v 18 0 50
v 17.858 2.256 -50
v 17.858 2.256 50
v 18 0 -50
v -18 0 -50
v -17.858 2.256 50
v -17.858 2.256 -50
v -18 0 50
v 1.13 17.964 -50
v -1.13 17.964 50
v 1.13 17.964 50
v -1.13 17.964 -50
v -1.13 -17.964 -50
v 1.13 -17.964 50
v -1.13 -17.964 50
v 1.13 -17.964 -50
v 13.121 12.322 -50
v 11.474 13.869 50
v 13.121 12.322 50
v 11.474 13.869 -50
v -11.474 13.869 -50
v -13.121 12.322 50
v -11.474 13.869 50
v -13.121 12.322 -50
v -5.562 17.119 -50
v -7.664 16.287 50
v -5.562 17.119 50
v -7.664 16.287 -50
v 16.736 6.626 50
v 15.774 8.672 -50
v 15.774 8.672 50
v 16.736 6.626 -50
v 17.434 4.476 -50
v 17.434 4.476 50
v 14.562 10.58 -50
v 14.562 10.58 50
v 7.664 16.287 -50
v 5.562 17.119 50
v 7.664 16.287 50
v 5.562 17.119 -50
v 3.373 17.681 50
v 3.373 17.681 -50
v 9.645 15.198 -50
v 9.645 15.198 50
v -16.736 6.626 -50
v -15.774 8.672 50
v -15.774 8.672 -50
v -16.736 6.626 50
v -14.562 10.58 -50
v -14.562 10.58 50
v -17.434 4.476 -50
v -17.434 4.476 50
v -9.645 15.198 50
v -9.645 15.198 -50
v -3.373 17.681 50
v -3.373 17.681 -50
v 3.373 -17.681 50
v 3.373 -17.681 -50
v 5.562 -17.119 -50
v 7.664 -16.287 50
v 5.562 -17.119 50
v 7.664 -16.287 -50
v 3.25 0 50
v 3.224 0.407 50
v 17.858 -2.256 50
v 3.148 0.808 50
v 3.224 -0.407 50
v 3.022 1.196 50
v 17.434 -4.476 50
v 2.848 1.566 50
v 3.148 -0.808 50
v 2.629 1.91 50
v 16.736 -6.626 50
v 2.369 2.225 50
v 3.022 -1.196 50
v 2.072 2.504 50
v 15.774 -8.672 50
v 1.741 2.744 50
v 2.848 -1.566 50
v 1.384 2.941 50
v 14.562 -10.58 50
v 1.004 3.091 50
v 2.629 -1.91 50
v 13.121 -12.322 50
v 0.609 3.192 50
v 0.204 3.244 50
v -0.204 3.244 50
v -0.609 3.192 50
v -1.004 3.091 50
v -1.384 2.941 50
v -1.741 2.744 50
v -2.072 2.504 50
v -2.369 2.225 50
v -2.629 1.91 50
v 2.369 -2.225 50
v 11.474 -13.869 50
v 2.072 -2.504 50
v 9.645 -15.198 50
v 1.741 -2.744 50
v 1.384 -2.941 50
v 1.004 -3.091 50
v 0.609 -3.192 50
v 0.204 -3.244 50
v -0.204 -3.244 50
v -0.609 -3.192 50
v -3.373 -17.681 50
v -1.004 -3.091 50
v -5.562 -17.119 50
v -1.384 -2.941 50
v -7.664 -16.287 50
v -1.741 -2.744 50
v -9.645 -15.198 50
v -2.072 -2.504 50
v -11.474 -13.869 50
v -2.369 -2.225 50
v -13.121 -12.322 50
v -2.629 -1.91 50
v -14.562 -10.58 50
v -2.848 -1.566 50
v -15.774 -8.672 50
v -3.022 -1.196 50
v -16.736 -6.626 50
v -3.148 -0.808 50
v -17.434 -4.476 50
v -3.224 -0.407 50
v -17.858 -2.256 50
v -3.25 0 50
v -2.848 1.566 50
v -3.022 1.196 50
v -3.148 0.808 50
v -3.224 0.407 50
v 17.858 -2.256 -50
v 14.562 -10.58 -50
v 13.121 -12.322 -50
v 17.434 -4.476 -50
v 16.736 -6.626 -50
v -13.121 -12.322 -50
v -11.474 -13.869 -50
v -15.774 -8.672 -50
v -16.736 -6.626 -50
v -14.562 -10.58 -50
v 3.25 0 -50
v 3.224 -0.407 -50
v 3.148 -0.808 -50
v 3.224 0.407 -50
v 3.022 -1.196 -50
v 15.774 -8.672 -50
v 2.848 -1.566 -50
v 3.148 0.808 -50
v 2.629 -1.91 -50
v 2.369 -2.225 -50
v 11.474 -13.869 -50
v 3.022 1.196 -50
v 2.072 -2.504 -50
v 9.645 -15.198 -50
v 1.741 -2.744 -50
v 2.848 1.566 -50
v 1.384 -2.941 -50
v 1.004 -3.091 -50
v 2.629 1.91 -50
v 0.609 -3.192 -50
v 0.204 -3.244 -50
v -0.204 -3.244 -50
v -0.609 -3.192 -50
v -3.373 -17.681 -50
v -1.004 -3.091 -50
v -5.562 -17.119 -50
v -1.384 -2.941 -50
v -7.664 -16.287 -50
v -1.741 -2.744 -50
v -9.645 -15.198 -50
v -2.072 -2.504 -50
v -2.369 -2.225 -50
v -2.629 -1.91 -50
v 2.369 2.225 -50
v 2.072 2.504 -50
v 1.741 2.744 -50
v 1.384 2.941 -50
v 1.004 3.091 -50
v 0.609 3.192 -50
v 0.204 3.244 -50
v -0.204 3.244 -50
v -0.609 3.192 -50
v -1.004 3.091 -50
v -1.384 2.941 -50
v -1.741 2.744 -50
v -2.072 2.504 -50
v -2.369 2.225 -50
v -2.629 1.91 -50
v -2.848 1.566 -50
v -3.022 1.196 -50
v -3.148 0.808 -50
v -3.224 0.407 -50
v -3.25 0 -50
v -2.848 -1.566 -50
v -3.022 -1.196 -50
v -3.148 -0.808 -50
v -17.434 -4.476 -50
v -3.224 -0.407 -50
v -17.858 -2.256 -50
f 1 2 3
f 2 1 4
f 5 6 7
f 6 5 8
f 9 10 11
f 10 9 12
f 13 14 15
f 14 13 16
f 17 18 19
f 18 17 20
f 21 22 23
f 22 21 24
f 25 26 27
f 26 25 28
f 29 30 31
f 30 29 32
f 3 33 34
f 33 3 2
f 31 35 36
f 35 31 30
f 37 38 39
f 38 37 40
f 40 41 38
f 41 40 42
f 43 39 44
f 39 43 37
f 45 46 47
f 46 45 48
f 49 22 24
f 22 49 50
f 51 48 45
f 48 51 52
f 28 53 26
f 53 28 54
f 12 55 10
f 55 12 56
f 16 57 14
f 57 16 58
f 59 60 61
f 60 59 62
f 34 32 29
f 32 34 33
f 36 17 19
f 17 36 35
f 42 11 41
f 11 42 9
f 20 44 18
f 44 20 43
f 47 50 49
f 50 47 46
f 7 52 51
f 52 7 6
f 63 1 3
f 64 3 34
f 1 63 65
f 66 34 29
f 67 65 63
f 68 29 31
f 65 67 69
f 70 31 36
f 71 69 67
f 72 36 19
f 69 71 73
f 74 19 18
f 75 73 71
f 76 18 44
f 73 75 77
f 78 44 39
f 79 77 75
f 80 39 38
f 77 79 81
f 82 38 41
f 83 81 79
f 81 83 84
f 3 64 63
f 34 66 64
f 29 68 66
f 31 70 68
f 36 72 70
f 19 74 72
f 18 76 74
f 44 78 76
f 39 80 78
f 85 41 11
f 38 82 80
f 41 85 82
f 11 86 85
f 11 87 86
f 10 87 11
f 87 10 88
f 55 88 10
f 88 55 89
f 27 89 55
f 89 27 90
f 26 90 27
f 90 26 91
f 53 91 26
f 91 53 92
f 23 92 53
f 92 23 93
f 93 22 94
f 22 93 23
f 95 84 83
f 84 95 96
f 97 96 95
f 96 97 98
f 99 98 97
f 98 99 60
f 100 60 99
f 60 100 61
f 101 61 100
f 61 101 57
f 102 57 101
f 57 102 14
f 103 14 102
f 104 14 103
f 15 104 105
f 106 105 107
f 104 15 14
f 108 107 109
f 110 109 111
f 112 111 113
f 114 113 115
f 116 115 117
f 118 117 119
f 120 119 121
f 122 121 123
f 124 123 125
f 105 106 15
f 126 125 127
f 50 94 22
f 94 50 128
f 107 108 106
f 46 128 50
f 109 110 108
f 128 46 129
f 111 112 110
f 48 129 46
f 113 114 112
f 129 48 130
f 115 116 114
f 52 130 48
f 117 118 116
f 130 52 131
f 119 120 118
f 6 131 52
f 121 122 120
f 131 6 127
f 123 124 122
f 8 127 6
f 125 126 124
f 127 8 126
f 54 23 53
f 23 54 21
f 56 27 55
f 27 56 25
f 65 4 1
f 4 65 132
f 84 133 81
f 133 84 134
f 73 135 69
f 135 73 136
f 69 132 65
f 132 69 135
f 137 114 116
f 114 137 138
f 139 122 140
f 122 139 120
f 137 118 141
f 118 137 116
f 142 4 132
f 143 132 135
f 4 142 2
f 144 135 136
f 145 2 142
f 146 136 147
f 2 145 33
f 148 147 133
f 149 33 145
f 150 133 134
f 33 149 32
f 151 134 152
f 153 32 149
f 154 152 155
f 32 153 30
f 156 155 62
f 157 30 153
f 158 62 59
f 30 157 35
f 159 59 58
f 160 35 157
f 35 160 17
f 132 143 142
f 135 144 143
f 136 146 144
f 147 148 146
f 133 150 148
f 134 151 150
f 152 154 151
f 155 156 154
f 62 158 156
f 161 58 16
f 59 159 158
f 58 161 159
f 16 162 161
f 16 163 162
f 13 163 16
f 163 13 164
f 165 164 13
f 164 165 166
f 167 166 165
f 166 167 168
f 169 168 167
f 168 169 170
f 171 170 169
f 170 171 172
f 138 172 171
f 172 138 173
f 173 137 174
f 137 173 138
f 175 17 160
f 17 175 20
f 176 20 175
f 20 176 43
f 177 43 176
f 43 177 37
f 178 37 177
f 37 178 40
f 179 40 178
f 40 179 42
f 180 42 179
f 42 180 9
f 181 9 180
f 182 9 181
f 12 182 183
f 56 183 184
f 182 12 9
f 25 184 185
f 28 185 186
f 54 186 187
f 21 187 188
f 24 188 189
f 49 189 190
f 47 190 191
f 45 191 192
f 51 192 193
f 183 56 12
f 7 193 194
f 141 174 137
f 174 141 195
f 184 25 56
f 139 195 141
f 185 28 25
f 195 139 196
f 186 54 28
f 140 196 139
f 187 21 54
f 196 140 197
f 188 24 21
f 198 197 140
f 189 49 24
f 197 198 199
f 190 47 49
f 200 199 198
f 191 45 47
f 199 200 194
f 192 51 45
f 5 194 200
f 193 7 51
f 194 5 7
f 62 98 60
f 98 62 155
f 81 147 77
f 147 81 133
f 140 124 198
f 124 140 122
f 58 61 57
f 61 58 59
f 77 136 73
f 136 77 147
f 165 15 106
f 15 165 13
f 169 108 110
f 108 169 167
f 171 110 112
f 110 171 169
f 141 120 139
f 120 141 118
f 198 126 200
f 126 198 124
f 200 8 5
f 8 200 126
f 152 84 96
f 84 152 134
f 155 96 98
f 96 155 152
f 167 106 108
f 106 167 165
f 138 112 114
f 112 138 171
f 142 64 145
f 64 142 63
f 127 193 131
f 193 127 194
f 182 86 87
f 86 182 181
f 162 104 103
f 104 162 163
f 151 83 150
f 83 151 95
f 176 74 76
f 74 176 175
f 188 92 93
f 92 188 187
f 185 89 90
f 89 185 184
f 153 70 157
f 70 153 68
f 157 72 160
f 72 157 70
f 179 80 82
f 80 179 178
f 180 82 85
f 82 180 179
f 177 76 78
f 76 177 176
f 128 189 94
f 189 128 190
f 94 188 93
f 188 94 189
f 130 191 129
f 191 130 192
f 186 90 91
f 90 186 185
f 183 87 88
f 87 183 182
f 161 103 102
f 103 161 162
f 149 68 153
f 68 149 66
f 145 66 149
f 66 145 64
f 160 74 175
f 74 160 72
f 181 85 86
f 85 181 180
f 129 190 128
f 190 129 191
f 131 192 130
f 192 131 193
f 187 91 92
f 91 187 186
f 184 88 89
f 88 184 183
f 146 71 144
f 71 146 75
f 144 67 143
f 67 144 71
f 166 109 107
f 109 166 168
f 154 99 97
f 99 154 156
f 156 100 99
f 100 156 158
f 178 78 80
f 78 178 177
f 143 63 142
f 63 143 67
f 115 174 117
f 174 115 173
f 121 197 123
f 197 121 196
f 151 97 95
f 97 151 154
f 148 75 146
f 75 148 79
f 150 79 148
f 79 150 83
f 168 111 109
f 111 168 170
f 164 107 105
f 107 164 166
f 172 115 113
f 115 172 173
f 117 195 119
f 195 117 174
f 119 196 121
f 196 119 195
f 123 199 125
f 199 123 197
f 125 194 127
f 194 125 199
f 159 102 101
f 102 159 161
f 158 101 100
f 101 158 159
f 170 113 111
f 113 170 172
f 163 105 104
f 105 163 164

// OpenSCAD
$fn = 50;


difference() {
	union() {
		translate(v = [0, 0, -50.0000000000]) {
			cylinder(h = 100, r = 18.0000000000);
		}
	}
	union() {
		translate(v = [0, 0, -100.0000000000]) {
			cylinder(h = 200, r = 3.2500000000);
		}
	}
}
